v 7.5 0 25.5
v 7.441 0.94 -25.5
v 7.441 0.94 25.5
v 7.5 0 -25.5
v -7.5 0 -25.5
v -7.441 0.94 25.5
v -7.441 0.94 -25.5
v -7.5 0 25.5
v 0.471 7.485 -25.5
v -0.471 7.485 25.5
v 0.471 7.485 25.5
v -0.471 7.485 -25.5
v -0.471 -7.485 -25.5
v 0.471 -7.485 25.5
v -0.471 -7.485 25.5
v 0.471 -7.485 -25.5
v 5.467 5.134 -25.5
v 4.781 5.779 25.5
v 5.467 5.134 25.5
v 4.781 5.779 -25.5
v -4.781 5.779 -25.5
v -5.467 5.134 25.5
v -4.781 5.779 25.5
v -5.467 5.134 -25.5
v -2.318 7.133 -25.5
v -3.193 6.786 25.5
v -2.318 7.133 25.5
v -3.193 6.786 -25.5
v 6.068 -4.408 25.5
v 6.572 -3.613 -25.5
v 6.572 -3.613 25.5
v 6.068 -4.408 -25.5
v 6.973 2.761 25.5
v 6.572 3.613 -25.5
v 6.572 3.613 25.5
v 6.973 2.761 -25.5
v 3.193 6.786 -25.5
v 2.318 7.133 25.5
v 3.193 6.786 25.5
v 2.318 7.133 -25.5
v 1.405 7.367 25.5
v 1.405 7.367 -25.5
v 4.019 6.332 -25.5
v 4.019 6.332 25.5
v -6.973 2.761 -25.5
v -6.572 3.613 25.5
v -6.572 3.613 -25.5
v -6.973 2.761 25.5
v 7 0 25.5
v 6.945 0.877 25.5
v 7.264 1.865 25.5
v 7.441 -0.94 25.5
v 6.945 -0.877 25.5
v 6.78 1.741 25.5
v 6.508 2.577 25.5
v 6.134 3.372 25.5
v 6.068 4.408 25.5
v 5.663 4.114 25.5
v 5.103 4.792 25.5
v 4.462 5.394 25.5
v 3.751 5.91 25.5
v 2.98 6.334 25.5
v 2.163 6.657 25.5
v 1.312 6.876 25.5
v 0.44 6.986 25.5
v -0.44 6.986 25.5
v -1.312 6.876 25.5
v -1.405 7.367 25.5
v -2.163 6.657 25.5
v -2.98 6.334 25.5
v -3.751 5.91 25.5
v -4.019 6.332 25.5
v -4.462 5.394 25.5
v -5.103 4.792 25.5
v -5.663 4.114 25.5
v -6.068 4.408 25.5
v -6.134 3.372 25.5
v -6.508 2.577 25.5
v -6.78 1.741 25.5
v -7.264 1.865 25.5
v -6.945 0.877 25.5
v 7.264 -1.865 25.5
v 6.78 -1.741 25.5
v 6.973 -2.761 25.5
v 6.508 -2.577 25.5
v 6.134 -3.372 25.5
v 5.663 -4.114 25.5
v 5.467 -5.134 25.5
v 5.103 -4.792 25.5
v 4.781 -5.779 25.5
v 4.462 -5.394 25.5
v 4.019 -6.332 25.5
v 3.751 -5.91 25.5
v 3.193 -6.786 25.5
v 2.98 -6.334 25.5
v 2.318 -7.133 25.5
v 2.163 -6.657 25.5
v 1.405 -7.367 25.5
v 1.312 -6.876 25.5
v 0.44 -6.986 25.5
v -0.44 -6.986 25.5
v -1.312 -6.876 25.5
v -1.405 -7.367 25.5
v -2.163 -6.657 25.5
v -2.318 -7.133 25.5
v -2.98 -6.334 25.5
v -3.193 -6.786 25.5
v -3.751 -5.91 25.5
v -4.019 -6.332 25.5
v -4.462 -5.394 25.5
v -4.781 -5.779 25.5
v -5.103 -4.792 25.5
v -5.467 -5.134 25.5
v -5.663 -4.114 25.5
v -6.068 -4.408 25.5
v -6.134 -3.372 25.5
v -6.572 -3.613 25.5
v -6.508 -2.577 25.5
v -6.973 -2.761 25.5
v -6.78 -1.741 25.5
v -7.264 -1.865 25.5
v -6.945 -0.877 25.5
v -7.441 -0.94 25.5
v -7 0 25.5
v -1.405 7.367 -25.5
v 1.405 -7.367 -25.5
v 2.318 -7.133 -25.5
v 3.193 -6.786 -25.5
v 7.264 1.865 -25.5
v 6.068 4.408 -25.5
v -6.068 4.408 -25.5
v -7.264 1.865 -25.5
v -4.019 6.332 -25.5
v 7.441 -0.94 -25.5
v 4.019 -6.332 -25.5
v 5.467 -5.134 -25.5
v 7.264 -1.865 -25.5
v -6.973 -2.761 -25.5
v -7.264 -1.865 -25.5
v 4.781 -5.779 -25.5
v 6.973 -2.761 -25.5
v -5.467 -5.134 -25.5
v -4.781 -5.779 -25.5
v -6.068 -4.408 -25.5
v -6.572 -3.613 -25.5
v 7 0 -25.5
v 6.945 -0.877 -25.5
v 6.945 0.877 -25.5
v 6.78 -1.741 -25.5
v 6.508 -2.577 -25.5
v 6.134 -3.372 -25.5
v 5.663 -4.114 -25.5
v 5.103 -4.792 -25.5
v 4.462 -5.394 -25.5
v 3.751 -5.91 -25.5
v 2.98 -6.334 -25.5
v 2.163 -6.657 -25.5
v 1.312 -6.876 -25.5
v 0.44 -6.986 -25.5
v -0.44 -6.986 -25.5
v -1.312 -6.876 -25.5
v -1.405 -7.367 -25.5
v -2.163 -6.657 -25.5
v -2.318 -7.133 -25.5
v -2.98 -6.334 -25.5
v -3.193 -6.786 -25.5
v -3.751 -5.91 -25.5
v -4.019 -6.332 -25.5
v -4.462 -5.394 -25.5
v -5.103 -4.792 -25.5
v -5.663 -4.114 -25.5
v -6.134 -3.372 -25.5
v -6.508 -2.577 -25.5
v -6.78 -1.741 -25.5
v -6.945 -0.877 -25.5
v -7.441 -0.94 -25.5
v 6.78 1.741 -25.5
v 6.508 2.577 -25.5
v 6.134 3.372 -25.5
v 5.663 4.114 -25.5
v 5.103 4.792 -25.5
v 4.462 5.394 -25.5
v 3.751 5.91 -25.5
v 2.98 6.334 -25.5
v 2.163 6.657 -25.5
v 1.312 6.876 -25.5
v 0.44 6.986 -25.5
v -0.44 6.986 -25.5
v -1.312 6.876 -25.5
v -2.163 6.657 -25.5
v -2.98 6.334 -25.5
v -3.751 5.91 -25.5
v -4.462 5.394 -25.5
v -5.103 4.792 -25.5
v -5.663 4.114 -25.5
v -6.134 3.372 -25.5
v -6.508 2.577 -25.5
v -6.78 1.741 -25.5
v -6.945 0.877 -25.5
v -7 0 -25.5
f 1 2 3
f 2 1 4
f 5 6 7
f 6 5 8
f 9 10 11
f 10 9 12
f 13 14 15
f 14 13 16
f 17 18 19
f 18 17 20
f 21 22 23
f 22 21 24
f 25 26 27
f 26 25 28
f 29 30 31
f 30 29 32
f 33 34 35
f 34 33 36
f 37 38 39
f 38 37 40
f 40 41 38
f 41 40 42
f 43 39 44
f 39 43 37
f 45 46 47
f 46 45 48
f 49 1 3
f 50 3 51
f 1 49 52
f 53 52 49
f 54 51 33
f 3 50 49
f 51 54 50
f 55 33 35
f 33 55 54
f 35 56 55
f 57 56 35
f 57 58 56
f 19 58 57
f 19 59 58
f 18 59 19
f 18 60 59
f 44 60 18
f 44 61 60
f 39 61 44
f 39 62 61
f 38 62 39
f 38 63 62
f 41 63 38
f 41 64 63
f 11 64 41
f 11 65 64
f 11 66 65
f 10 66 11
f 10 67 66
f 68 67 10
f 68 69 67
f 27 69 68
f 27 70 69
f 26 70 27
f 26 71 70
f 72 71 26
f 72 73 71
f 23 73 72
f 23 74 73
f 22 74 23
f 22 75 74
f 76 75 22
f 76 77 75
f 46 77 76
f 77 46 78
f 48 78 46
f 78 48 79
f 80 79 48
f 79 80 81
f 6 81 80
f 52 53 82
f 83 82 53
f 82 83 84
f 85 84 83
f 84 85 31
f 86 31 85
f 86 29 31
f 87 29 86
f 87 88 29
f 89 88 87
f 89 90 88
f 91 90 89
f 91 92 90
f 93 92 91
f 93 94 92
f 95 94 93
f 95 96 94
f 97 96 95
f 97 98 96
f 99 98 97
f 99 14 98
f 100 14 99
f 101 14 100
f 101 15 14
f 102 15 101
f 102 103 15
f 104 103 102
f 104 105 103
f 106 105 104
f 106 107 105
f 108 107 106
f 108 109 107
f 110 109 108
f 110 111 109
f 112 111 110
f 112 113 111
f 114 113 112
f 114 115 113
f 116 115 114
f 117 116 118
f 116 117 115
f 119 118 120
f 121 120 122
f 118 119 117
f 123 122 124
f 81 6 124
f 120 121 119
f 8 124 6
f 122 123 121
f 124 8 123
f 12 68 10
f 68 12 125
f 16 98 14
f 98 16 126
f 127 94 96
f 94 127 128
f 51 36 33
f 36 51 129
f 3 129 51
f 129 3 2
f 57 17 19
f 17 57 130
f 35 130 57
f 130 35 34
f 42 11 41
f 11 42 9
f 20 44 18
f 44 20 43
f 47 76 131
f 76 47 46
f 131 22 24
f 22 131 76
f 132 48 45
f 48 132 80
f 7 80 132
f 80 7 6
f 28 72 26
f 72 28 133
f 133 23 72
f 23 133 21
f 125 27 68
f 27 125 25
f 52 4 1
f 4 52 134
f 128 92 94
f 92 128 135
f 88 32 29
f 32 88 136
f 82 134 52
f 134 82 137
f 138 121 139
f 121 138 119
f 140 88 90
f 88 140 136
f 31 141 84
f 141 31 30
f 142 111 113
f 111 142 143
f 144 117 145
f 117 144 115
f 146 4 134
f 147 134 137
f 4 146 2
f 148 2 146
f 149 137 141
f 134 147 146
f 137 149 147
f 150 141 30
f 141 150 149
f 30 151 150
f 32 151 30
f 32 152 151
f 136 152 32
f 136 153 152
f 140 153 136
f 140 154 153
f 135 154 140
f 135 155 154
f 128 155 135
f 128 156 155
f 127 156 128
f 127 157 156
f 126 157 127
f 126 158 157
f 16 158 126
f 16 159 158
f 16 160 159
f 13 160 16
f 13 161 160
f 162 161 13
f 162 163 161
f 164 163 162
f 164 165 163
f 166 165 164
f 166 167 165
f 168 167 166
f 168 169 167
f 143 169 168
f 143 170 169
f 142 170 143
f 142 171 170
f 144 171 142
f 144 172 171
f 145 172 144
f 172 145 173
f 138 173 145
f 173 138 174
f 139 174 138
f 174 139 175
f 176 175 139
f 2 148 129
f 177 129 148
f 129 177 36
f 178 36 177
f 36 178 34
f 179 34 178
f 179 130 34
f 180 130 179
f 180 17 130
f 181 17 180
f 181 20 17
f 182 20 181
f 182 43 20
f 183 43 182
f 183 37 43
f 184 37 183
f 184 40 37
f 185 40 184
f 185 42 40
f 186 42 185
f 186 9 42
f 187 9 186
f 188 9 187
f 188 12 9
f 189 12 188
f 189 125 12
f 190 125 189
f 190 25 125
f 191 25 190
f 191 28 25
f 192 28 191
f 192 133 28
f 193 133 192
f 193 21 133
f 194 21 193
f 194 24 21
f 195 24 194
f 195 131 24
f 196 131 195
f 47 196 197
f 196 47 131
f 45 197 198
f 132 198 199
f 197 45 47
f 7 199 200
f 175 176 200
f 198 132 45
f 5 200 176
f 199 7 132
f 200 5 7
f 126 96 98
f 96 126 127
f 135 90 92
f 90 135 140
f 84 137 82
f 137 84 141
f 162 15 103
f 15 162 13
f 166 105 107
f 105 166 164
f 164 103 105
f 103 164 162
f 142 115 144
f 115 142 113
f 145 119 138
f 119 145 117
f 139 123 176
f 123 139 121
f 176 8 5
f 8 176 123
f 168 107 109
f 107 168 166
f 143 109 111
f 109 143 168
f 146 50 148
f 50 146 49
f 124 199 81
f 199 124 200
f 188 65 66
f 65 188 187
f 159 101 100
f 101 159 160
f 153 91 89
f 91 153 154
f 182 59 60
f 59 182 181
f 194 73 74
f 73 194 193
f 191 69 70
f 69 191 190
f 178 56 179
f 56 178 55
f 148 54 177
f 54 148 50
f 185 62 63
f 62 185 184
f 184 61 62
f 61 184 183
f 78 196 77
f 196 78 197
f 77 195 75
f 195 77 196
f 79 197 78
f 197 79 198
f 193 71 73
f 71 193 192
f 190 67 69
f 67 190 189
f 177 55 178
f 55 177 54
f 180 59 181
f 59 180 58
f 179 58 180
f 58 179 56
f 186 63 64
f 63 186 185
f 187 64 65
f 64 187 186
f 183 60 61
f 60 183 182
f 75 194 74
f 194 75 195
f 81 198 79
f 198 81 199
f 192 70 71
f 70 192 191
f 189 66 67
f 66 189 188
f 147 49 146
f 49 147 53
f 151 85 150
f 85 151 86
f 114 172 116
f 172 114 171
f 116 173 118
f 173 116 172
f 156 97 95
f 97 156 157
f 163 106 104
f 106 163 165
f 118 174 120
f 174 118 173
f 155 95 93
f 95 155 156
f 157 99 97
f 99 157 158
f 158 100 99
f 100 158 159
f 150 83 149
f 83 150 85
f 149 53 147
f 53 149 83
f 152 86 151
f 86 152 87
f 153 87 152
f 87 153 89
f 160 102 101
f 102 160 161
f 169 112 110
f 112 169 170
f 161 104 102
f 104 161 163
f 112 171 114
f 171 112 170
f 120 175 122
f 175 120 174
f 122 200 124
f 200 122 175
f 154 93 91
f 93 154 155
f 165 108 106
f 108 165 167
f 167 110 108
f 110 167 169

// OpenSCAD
$fn = 50;


difference() {
	union() {
		translate(v = [0, 0, -25.5000000000]) {
			cylinder(h = 51, r = 7.5000000000);
		}
	}
	union() {
		translate(v = [0, 0, -100.0000000000]) {
			cylinder(h = 200, r = 7);
		}
	}
}
